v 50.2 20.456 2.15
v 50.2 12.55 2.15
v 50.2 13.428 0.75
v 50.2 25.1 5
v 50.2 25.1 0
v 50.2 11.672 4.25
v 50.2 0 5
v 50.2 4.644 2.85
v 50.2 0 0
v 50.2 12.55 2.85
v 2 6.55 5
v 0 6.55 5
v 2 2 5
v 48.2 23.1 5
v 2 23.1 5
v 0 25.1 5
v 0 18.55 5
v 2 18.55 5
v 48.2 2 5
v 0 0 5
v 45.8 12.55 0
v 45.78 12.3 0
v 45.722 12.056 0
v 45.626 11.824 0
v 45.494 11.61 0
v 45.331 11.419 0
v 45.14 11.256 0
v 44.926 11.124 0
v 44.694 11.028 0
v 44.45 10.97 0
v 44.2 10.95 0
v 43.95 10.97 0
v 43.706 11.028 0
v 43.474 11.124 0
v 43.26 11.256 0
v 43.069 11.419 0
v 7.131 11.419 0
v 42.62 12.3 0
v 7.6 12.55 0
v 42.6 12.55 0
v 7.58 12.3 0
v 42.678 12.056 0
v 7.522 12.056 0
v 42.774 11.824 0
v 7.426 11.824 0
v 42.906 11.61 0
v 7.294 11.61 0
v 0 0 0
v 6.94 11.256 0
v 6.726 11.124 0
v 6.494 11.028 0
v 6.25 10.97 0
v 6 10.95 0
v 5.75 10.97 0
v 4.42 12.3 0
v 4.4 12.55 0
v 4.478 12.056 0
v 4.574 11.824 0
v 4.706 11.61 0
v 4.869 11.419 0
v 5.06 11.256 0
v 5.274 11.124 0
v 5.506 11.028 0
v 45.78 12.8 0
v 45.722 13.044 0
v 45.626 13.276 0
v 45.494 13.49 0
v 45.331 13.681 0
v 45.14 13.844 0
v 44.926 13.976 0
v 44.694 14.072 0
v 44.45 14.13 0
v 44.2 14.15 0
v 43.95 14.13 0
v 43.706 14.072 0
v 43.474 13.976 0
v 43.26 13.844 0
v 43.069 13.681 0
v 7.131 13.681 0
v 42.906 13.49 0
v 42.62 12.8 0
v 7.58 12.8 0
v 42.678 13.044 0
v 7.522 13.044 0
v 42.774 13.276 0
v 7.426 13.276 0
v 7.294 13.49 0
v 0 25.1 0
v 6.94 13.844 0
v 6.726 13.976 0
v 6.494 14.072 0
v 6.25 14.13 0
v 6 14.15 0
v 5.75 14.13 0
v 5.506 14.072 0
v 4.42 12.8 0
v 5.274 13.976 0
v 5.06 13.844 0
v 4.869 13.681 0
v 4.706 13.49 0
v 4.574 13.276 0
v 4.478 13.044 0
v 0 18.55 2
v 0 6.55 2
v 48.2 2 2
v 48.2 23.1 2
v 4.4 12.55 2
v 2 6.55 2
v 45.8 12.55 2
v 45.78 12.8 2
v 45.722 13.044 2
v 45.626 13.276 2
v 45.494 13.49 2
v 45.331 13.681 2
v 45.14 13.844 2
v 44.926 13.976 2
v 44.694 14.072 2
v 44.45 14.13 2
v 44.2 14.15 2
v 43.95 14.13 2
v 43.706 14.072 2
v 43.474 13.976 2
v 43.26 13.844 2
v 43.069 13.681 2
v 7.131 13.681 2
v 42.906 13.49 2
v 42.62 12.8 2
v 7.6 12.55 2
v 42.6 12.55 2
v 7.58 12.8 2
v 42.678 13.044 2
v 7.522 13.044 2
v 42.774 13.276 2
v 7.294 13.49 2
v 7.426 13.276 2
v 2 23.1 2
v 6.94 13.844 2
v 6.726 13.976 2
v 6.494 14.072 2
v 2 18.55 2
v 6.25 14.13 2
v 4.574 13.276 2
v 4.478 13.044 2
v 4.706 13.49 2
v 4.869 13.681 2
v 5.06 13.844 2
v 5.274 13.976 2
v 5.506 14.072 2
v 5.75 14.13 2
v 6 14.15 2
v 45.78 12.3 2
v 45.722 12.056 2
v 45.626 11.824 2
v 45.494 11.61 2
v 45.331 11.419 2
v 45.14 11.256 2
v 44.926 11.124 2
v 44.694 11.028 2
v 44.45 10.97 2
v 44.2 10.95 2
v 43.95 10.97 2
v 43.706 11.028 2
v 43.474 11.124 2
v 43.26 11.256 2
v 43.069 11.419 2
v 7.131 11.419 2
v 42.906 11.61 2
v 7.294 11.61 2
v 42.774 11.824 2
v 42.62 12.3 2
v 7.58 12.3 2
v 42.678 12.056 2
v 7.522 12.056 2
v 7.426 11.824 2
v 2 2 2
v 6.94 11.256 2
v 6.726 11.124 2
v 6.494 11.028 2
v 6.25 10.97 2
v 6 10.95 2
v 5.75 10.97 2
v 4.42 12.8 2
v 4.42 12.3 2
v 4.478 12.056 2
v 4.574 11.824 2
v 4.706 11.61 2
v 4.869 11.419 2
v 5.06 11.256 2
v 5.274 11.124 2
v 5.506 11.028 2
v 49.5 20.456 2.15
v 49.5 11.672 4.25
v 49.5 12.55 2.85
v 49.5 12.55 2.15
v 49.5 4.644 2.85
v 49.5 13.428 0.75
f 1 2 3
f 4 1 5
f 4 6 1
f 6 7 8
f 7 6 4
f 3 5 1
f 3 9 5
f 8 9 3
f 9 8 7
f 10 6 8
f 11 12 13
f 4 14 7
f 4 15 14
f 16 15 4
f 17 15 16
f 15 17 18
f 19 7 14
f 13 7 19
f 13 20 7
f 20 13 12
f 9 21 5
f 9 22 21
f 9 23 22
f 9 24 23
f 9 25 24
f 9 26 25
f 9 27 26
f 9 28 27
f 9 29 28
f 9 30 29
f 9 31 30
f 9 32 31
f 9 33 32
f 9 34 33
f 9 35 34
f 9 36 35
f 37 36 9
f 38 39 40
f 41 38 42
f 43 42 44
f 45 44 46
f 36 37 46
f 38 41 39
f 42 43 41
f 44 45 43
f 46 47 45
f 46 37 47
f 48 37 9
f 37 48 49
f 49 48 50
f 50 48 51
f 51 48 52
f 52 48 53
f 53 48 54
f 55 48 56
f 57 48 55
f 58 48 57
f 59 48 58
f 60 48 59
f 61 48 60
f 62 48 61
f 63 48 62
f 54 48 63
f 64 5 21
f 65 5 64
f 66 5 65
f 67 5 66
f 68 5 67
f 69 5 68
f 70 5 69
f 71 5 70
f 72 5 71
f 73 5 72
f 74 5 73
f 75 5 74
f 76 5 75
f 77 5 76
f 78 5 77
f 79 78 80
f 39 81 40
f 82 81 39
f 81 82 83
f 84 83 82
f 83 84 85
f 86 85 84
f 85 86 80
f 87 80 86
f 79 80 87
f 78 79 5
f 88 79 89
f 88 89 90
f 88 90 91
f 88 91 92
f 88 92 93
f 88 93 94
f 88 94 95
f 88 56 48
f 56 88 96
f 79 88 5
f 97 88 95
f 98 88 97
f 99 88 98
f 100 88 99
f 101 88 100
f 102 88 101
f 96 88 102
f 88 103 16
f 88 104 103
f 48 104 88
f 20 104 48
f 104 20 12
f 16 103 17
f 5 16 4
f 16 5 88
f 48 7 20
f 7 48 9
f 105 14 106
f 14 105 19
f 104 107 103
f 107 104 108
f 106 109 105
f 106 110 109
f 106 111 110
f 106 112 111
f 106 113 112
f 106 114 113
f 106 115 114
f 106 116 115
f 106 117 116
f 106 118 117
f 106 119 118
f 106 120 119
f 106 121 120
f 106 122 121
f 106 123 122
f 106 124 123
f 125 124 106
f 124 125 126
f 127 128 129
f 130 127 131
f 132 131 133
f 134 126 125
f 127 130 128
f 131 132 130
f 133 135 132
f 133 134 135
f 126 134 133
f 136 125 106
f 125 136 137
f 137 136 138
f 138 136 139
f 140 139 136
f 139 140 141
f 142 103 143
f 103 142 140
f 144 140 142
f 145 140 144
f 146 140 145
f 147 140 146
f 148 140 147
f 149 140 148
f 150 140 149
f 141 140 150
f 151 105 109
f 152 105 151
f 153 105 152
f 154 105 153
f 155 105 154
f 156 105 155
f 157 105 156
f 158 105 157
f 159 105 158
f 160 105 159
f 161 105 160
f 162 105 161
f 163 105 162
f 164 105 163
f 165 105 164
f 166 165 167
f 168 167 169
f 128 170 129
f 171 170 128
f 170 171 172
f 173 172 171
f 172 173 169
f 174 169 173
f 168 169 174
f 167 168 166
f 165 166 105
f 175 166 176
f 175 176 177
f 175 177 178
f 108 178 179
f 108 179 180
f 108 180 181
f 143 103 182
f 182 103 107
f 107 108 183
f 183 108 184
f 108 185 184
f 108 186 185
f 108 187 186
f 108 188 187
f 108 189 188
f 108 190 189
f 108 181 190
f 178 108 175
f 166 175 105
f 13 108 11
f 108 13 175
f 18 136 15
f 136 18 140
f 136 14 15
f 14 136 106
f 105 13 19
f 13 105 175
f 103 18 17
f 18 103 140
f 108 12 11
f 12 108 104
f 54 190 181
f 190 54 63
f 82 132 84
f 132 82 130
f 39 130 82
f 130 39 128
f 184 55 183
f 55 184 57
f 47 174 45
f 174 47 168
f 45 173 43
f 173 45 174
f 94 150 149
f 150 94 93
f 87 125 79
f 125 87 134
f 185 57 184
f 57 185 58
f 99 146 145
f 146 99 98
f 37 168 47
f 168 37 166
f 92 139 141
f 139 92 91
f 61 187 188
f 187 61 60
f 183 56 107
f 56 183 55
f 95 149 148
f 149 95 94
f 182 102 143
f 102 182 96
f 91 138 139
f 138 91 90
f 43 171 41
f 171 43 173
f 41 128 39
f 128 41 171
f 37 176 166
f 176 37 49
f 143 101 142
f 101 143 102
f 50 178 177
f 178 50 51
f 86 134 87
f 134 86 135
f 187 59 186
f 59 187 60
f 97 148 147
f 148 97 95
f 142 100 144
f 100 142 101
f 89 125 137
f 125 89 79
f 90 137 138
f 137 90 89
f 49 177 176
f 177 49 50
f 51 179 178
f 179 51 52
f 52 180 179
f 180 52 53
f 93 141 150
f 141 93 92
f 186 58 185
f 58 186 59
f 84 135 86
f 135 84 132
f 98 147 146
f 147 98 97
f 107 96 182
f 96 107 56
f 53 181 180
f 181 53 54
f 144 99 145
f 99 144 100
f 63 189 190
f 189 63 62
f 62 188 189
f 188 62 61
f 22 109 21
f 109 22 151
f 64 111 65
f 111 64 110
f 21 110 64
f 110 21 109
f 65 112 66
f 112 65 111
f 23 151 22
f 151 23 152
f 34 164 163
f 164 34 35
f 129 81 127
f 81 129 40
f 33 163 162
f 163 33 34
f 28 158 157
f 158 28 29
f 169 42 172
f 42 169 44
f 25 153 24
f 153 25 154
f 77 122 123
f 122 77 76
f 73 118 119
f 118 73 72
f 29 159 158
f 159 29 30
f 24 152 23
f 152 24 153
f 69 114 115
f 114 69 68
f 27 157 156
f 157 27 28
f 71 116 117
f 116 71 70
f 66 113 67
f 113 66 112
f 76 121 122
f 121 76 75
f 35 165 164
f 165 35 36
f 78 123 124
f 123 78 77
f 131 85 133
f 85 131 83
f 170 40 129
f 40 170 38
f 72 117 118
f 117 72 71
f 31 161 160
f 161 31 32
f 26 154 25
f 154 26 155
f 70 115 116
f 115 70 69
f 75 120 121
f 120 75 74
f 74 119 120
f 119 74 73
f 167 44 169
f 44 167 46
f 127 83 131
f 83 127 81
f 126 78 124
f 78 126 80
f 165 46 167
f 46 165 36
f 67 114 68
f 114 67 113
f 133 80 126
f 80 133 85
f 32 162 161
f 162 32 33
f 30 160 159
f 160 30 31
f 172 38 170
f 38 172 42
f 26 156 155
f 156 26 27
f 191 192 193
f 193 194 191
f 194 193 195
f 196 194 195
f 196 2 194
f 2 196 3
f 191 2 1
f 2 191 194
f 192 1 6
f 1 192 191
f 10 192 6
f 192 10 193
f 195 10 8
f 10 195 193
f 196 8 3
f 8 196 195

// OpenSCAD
// Suporte pro sensor de obstáculo infravermelho (contador de visitantes) — prende no
// batente da porta, um de cada lado (S1 corredor, S2 sala). Mesma lógica de bandeja
// aberta das outras peças: segura o módulo pelas bordas, sem cobrir os LEDs/trimpot.
//
// *** MEDIDAS DO MÓDULO — PADRÃO GENÉRICO, NÃO CONFIRMADAS COM O SENSOR REAL ***
// board_l/board_w/hole_spacing são os valores típicos desse tipo de módulo de 3 pinos
// (o mesmo vendido na Eletrogate). Confirma com paquímetro quando o sensor chegar —
// se bater, é só reimprimir com o valor certo.

board_l        = 45.2;  // comprimento da placa (do conector até a ponta dos LEDs)
board_w        = 20.1;  // largura da placa
hole_spacing_l = 38;    // distância entre os 2 furos de fixação do próprio módulo (centro a centro, no sentido do comprimento)
board_hole_d   = 2.2;   // furo de fixação do módulo (parafuso pequeno, M2)

clearance = 0.5;
wall_t    = 2;
floor_t   = 2;
lip_h     = 3;         // baixo o bastante pra não tampar o trimpot nem os LEDs

// furos pra fixar o suporte no batente da porta (parafuso maior, M3)
mount_hole_d = 3.2;
mount_inset  = 6;

// rasgo de saída do cabo (3 fios: VCC/GND/OUT, indo pro CAT5) na parede de trás
cable_slot_w = 12;
cable_slot_h = 6;

// --- Selo gravado (raio pequeno, mesmo símbolo do pedestal) na parede da ponta
// oposta ao rasgo do cabo — gravação RASA, não vaza a parede de 2mm ---
engrave_depth = 0.7;   // bem raso — parede aqui é fina (2mm), sobra 1,3mm sólido

$fn = 40;

outer_l = board_l + 2*clearance + 2*wall_t;
outer_w = board_w + 2*clearance + 2*wall_t;
total_h = floor_t + lip_h;

bolt_w = outer_w * 0.35;
bolt_h = total_h * 0.7;

// mesmo polígono de raio já validado (sem autointersecção) usado no botao_pedestal.scad
module raio_2d(w, h) {
    hh = h / 2;
    polygon(points = [
        [ 1.0*hh,  0.1*w],
        [-0.2*hh, -0.9*w],
        [-0.2*hh,  0.0*w],
        [-1.0*hh, -0.1*w],
        [ 0.2*hh,  0.9*w],
        [ 0.2*hh,  0.0*w],
    ]);
}

module selo_raio() {
    translate([outer_l - engrave_depth, outer_w / 2, total_h / 2])
        rotate([0, 90, 0])
            linear_extrude(height = engrave_depth + 0.1)
                raio_2d(bolt_w, bolt_h);
}

module suporte() {
    difference() {
        cube([outer_l, outer_w, total_h]);

        // bolsão onde o módulo encaixa
        translate([wall_t, wall_t, floor_t])
            cube([board_l + 2*clearance, board_w + 2*clearance, lip_h + 1]);

        // rasgo pro cabo sair pela parede de trás (lado oposto aos LEDs/lente)
        translate([-1, outer_w/2 - cable_slot_w/2, floor_t])
            cube([wall_t + 2, cable_slot_w, cable_slot_h]);

        // furos de fixação do módulo em si (opcional — trava com parafuso M2 além da folga)
        // os 2 furos do módulo ficam espaçados ao longo do comprimento (eixo X), centrados na largura
        board_center_y = wall_t + clearance + board_w/2;
        translate([outer_l/2 - hole_spacing_l/2, board_center_y, -1])
            cylinder(d = board_hole_d, h = total_h + 2);
        translate([outer_l/2 + hole_spacing_l/2, board_center_y, -1])
            cylinder(d = board_hole_d, h = total_h + 2);

        // furos de fixação no batente da porta (2, nas pontas)
        translate([mount_inset, outer_w/2, -1])
            cylinder(d = mount_hole_d, h = total_h + 2);
        translate([outer_l - mount_inset, outer_w/2, -1])
            cylinder(d = mount_hole_d, h = total_h + 2);

        // selo gravado do raio, na parede da ponta oposta ao cabo (X=outer_l)
        selo_raio();
    }
}

suporte();

// NÃO TESTADO — imprimir 1 peça de teste e conferir encaixe com o sensor real antes
// de imprimir o par completo (S1 + S2).
